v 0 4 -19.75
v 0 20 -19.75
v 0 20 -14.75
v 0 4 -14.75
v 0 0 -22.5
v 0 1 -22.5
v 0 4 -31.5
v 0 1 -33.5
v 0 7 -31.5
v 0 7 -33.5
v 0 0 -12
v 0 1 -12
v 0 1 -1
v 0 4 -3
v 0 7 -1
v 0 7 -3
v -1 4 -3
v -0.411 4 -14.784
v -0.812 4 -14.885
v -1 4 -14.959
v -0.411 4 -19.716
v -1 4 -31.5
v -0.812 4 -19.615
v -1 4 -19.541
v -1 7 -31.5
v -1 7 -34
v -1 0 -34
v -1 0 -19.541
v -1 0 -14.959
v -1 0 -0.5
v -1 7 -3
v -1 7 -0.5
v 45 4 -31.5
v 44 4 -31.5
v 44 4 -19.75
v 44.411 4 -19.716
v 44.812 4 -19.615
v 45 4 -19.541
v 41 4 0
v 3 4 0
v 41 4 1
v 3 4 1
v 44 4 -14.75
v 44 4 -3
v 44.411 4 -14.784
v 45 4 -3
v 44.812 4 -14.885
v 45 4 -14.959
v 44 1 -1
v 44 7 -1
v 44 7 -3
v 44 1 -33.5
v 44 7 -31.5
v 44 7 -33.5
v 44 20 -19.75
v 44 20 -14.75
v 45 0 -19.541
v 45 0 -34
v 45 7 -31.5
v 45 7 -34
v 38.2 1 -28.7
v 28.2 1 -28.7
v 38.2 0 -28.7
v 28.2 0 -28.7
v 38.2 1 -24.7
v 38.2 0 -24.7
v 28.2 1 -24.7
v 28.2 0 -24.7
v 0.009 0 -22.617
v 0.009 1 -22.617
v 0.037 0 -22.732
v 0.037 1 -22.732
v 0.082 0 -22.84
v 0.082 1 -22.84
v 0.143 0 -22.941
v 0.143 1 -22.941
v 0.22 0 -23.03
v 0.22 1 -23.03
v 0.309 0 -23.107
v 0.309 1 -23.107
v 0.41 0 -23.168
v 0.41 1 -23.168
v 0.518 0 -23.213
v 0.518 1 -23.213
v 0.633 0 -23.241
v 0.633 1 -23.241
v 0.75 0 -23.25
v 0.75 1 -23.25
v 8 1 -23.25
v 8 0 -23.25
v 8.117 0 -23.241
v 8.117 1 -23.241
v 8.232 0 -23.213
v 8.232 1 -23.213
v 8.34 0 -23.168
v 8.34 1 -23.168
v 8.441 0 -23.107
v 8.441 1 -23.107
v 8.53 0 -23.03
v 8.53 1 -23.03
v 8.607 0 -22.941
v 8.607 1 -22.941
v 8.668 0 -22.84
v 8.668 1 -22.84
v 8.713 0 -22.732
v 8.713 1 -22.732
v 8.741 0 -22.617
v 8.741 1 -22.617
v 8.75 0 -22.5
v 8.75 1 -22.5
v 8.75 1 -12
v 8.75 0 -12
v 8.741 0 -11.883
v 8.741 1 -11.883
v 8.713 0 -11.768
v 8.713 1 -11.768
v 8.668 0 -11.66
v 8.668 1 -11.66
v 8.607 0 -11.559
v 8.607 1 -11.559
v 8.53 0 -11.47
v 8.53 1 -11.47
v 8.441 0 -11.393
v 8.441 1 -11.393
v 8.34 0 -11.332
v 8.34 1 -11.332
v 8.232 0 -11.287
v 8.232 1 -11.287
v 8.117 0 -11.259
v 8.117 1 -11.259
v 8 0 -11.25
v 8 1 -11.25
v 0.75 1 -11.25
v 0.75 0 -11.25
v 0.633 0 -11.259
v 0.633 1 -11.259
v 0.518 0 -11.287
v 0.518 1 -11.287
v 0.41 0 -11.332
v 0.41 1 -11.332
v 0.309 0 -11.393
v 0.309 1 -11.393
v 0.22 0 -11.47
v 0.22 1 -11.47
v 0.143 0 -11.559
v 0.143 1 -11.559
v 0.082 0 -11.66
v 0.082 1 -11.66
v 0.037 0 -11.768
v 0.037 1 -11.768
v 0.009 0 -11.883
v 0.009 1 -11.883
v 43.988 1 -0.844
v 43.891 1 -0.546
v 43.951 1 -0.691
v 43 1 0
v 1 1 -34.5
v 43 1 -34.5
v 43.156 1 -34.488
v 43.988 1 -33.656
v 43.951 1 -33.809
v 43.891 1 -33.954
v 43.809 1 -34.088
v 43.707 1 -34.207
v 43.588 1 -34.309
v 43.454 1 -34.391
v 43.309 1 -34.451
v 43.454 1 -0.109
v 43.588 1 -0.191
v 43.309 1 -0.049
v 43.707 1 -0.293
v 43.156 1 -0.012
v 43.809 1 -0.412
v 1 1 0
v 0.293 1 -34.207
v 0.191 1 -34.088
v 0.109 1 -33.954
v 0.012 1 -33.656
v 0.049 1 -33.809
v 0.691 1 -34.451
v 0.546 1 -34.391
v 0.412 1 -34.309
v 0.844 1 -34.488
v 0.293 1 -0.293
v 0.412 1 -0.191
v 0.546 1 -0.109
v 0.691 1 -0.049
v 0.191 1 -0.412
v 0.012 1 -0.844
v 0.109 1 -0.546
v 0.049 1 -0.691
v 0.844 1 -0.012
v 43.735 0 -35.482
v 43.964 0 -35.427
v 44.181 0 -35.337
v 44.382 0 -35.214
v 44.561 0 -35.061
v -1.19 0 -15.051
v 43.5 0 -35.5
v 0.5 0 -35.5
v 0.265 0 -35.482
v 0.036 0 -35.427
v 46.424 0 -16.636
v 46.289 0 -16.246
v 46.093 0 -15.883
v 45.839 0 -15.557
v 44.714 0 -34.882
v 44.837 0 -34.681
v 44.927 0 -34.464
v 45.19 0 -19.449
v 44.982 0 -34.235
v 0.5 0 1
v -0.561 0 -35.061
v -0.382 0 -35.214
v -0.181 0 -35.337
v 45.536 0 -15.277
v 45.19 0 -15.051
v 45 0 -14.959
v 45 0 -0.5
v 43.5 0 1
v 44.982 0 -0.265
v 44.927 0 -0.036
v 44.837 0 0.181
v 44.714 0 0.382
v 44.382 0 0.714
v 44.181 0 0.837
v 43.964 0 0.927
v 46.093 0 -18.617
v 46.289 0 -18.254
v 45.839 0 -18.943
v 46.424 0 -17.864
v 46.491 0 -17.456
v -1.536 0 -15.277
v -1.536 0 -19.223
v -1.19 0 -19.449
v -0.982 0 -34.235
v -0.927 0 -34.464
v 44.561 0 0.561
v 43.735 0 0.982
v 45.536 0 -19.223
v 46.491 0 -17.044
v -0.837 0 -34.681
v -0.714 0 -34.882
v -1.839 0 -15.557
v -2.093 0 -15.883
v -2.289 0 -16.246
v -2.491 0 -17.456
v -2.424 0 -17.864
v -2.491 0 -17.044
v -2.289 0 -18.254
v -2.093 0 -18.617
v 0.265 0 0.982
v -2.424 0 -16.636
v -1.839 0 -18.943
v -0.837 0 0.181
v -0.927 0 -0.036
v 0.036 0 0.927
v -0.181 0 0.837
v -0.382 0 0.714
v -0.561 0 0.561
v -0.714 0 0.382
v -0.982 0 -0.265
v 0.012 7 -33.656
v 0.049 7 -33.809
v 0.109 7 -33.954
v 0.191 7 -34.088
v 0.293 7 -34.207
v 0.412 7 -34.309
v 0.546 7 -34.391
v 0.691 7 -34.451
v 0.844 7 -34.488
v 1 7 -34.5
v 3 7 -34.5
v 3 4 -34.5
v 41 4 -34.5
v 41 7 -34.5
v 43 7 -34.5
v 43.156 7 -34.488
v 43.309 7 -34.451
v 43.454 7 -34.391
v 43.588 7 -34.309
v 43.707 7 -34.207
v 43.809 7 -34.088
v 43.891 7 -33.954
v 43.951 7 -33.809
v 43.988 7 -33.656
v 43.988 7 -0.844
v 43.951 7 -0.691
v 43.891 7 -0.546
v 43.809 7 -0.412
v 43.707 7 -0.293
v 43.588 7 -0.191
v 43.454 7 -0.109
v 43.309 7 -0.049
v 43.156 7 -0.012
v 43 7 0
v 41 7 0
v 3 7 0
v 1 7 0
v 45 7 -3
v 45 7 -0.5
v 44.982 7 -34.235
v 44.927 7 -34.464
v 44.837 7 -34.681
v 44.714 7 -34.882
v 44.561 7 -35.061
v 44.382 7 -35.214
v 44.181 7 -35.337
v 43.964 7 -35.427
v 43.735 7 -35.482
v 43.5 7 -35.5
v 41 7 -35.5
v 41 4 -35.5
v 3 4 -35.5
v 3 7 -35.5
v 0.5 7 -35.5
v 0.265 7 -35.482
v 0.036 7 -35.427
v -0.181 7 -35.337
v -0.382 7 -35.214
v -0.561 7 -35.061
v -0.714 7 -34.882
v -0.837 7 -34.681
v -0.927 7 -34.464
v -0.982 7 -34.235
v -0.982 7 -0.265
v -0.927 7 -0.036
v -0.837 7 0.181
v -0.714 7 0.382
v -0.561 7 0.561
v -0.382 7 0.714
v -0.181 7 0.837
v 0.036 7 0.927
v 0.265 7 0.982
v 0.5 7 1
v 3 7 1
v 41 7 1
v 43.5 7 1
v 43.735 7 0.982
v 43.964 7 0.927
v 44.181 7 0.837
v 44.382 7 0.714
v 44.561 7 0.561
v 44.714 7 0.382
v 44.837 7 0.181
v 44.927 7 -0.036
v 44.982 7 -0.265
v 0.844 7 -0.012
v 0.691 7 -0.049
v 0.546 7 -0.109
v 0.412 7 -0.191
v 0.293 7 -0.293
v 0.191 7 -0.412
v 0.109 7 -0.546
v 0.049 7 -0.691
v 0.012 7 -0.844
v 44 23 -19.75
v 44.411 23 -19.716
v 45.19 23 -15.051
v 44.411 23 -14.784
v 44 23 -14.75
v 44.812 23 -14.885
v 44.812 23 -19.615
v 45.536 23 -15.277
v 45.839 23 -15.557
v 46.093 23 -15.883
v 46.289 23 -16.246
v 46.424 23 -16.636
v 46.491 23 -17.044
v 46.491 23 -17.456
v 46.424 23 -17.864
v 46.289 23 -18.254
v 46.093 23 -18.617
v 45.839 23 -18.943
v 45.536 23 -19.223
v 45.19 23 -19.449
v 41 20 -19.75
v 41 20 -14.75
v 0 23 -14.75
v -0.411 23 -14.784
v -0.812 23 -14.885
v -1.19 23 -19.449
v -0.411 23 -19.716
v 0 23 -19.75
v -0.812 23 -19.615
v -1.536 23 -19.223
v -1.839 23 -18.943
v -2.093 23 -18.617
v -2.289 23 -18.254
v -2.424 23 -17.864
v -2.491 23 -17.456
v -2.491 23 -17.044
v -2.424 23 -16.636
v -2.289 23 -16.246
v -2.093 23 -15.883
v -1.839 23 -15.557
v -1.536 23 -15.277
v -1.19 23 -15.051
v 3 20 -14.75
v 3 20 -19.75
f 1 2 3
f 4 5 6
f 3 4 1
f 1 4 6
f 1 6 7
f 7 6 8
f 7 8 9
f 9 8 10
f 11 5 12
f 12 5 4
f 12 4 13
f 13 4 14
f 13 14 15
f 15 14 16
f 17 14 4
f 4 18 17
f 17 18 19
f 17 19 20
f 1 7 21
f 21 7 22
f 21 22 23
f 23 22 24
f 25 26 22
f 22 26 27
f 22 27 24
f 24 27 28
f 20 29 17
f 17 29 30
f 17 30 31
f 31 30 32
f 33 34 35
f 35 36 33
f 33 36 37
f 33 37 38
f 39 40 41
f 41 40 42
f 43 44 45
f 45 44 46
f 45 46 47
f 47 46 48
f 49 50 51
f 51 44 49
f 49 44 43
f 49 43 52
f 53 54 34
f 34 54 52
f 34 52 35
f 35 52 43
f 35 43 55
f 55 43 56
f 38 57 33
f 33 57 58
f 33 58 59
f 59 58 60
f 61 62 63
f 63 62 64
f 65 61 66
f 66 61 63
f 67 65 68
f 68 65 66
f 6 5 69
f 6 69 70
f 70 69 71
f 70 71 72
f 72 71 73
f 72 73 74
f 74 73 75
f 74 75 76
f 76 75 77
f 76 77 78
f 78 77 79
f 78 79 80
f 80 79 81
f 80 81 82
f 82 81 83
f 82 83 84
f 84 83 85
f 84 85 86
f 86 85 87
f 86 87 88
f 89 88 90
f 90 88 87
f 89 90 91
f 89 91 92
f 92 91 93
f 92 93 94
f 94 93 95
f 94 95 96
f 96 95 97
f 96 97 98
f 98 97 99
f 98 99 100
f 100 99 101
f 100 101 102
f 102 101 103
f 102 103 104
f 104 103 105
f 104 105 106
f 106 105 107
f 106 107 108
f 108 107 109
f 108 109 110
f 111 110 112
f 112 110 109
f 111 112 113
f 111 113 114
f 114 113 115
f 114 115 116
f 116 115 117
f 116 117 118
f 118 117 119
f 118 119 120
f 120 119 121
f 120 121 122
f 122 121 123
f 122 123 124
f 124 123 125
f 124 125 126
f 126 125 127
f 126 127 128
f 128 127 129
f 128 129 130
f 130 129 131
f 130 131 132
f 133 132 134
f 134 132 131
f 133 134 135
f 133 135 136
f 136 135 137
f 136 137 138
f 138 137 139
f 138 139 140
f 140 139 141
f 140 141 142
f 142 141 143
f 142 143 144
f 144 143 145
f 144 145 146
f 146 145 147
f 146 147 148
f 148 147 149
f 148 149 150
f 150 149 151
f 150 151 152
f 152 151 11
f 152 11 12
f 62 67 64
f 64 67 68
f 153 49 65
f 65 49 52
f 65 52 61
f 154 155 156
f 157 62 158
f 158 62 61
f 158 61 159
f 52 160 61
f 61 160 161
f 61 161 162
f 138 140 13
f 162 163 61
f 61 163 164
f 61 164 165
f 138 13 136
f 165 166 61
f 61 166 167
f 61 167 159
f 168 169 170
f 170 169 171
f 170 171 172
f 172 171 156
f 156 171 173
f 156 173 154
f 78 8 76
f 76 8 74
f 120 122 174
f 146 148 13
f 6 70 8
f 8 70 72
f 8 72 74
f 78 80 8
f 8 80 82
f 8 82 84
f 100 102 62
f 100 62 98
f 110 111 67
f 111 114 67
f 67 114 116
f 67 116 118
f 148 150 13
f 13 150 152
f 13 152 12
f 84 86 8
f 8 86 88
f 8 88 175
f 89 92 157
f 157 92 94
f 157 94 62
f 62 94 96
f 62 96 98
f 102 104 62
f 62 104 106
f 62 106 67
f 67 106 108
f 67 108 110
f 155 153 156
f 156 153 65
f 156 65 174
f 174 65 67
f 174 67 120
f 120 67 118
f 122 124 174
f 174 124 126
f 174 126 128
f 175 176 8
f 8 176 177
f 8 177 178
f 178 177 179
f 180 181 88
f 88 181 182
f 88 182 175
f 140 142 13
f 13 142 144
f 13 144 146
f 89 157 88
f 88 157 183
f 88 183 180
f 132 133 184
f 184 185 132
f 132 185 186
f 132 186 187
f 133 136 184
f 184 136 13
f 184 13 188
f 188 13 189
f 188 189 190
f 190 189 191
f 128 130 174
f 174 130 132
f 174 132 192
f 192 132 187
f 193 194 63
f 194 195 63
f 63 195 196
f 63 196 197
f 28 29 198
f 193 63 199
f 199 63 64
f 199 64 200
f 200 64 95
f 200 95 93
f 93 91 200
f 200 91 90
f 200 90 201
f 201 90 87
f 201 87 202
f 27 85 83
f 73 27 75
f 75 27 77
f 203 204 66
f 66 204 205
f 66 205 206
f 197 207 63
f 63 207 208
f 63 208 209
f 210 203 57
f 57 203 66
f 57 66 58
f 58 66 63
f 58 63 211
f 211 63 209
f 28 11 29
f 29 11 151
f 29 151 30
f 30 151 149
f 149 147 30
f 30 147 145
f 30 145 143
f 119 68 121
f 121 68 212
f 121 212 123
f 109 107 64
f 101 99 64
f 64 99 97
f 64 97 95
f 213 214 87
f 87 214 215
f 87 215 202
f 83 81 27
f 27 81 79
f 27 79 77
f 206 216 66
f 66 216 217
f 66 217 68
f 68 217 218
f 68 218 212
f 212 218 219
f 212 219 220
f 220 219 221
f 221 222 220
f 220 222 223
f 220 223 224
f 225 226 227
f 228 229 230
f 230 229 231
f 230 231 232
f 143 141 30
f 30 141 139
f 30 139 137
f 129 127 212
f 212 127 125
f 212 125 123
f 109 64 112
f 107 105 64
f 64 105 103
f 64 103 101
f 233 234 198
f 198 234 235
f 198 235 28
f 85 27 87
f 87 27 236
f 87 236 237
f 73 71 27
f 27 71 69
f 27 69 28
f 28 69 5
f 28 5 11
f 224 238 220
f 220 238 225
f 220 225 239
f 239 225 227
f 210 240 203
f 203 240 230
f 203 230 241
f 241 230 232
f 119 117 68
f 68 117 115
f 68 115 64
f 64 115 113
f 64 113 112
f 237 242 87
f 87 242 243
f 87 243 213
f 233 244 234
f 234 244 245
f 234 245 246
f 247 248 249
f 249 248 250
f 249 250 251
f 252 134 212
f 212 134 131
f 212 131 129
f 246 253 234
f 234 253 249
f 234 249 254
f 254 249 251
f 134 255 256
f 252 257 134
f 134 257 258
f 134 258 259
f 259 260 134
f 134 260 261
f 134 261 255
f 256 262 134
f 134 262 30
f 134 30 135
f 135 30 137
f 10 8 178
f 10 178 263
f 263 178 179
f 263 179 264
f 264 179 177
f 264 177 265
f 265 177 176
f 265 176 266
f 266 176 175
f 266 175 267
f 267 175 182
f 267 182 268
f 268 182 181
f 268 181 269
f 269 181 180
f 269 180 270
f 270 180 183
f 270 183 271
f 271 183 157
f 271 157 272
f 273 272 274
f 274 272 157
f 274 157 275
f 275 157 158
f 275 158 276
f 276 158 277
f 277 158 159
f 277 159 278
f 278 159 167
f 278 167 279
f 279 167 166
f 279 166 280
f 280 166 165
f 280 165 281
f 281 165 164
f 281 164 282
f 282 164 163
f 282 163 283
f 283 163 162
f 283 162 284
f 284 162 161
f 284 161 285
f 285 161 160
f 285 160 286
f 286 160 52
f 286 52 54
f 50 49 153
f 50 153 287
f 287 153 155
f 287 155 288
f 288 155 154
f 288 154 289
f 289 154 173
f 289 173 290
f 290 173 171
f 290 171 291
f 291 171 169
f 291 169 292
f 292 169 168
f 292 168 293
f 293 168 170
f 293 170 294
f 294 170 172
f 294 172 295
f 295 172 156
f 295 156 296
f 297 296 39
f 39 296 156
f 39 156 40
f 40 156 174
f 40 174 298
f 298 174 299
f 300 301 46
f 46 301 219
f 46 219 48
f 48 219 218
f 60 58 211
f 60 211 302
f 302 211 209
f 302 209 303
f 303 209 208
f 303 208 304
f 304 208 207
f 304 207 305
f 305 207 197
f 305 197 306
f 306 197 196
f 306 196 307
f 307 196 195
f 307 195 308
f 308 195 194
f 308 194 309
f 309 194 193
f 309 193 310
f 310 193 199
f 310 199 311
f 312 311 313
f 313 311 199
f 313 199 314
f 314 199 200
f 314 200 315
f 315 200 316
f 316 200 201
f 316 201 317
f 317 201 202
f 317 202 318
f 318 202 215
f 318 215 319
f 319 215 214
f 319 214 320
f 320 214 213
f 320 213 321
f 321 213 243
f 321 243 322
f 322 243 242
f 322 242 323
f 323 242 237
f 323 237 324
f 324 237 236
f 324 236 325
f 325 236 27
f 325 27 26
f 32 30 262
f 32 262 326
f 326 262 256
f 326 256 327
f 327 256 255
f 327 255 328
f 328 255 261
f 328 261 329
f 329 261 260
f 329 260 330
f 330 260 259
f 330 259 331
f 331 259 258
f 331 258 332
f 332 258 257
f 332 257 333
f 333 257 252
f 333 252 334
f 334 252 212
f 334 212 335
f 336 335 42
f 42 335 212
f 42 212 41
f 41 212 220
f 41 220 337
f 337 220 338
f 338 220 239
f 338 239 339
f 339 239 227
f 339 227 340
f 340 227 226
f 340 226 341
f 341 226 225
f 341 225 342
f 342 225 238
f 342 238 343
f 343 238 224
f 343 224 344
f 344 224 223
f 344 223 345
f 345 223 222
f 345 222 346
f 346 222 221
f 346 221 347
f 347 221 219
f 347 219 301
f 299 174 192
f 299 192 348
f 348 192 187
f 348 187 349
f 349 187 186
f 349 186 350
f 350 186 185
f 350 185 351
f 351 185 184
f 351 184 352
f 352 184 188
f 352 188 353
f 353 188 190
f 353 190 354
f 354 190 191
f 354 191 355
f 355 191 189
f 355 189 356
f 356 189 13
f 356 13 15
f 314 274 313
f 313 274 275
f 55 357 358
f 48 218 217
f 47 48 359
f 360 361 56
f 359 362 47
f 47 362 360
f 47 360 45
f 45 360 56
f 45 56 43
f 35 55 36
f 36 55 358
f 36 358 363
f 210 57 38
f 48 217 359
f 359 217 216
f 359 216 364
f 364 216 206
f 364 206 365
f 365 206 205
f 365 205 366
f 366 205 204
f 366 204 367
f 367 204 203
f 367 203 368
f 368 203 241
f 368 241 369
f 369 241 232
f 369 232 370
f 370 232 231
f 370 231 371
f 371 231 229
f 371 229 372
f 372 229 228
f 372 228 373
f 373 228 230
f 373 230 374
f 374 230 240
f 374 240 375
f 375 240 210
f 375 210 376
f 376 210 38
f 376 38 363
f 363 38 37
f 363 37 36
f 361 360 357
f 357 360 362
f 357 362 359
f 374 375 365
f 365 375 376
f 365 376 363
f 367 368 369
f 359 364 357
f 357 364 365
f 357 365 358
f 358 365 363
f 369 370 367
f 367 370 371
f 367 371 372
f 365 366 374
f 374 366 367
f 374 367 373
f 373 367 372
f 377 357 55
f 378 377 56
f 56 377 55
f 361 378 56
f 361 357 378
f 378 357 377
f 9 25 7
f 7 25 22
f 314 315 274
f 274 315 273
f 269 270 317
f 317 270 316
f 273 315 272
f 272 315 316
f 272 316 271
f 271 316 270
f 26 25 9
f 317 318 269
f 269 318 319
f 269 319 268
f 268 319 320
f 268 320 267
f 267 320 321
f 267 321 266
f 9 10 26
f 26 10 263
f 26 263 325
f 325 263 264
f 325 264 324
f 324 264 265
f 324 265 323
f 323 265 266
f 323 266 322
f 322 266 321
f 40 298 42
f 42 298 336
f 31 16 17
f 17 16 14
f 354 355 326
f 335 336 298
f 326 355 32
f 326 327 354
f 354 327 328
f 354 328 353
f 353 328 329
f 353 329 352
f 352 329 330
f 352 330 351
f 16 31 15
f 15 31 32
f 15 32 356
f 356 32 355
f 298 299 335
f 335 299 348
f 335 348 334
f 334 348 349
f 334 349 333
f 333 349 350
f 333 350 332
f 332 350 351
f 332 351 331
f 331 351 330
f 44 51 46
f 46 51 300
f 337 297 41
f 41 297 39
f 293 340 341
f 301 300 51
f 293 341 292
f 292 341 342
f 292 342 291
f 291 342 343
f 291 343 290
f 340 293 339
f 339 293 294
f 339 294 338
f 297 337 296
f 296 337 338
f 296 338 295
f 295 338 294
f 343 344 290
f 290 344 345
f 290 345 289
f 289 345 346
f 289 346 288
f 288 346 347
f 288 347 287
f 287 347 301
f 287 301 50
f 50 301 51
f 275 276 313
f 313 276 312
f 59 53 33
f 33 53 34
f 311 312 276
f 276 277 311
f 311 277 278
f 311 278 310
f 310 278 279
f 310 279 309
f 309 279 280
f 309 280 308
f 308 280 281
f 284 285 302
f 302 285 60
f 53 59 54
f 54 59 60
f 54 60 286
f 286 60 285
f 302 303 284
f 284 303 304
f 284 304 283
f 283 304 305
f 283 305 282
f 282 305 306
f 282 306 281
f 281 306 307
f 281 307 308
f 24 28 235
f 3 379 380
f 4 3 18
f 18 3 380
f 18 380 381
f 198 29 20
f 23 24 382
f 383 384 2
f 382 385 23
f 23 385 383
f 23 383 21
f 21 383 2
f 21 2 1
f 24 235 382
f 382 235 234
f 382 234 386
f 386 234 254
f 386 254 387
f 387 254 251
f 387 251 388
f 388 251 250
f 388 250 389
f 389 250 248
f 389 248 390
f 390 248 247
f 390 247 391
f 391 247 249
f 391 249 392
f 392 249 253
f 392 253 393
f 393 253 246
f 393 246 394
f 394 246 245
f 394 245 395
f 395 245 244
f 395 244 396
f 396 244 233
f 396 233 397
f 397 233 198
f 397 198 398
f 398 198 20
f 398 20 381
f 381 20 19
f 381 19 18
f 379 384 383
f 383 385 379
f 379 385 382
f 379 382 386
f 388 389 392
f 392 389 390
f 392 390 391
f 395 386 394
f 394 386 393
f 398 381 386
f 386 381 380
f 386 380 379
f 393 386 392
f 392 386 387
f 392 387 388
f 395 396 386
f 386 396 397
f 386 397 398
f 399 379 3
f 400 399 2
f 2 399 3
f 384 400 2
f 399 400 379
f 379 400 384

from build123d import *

# Parameters (mm, degrees)
SKETCH1_W           = 10
SKETCH1_H           = 4
BOSS_EXTRUDE1_DEPTH = 1
SKETCH1_3_W         = 38
SKETCH1_3_H         = 1
BOSS_EXTRUDE2_DEPTH = 4
BOSS_EXTRUDE3_DEPTH = 23
SKETCH2_W           = 5
SKETCH2_H           = 3
BOSS_EXTRUDE4_DEPTH = 3
CUT_EXTRUDE1_DEPTH  = 56.873182297
BOSS_EXTRUDE5_DEPTH = 7
BOSS_EXTRUDE8_DEPTH = 23
SKETCH6_W           = 5
SKETCH6_H           = 3
BOSS_EXTRUDE9_DEPTH = 3
CUT_EXTRUDE3_DEPTH  = 56.873182297


with BuildPart() as part:
    # Sketch1 → Boss-Extrude1 (new body)
    with BuildSketch(Plane(origin=(0, 0, 0), x_dir=(1, 0, 0), z_dir=(0, 1, 0))):
        with BuildLine():
            Line((8.75, 22.5), (8.75, 12))
            ThreePointArc((8.75, 12), (8.530330086, 11.469669914), (8, 11.25))
            Line((8, 11.25), (0.75, 11.25))
            ThreePointArc((0.75, 11.25), (0.219669914, 11.469669914), (0, 12))
            Line((0, 12), (0, 1))
            ThreePointArc((0, 1), (0.292893219, 0.292893219), (1, 0))
            Line((1, 0), (43, 0))
            ThreePointArc((43, 0), (43.707106781, 0.292893219), (44, 1))
            Line((44, 1), (44, 33.5))
            ThreePointArc((44, 33.5), (43.707106781, 34.207106781), (43, 34.5))
            Line((43, 34.5), (1, 34.5))
            ThreePointArc((1, 34.5), (0.292893219, 34.207106781), (0, 33.5))
            Line((0, 33.5), (0, 22.5))
            ThreePointArc((0, 22.5), (0.219669914, 23.030330086), (0.75, 23.25))
            Line((0.75, 23.25), (8, 23.25))
            ThreePointArc((8, 23.25), (8.530330086, 23.030330086), (8.75, 22.5))
        make_face()
        with Locations((33.2, 26.7)):
            Rectangle(SKETCH1_W, SKETCH1_H, mode=Mode.SUBTRACT)
    extrude(amount=BOSS_EXTRUDE1_DEPTH)

    # Sketch1<3> → Boss-Extrude2 (add)
    # profile 1 of 12: a face of its own
    with BuildSketch(Plane(origin=(0, 0, 0), x_dir=(1, 0, 0), z_dir=(0, 1, 0))):
        with BuildLine():
            ThreePointArc((43.5, 35.5), (44.560660172, 35.060660172), (45, 34))
            Line((45, 34), (45, 0.5))
            ThreePointArc((45, 0.5), (44.560660172, -0.560660172), (43.5, -1))
            Line((43.5, -1), (0.5, -1))
            ThreePointArc((0.5, -1), (-0.560660172, -0.560660172), (-1, 0.5))
            Line((-1, 0.5), (-1, 34))
            ThreePointArc((-1, 34), (-0.560660172, 35.060660172), (0.5, 35.5))
            Line((0.5, 35.5), (43.5, 35.5))
        make_face()
        with BuildLine():
            ThreePointArc((1, 34.5), (0.292893219, 34.207106781), (0, 33.5))
            Line((0, 33.5), (0, 24.75))
            Line((0, 24.75), (0, 22.5))
            Line((0, 22.5), (0, 12))
            Line((0, 12), (0, 9.75))
            Line((0, 9.75), (0, 1))
            ThreePointArc((0, 1), (0.292893219, 0.292893219), (1, 0))
            Line((1, 0), (43, 0))
            ThreePointArc((43, 0), (43.707106781, 0.292893219), (44, 1))
            Line((44, 1), (44, 33.5))
            ThreePointArc((44, 33.5), (43.707106781, 34.207106781), (43, 34.5))
            Line((43, 34.5), (1, 34.5))
        make_face(mode=Mode.SUBTRACT)
    # profile 2 of 12: a face of its own
    with BuildSketch(Plane(origin=(0, 0, 0), x_dir=(1, 0, 0), z_dir=(0, 1, 0))):
        with BuildLine():
            Line((3, 0), (1, 0))
            ThreePointArc((1, 0), (0.292893219, 0.292893219), (0, 1))
            Line((0, 1), (0, 3))
            Line((0, 3), (-1, 3))
            Line((-1, 3), (-1, 0.5))
            ThreePointArc((-1, 0.5), (-0.560660172, -0.560660172), (0.5, -1))
            Line((0.5, -1), (3, -1))
            Line((3, -1), (3, 0))
        make_face()
    # profile 3 of 12: a face of its own
    with BuildSketch(Plane(origin=(0, 0, 0), x_dir=(1, 0, 0), z_dir=(0, 1, 0))):
        with Locations((22, -0.5)):
            Rectangle(SKETCH1_3_W, SKETCH1_3_H)
    # profile 4 of 12: a face of its own
    with BuildSketch(Plane(origin=(0, 0, 0), x_dir=(1, 0, 0), z_dir=(0, 1, 0))):
        with BuildLine():
            Line((43, 0), (41, 0))
            Line((41, 0), (41, -1))
            Line((41, -1), (43.5, -1))
            ThreePointArc((43.5, -1), (44.560660172, -0.560660172), (45, 0.5))
            Line((45, 0.5), (45, 3))
            Line((45, 3), (44, 3))
            Line((44, 3), (44, 1))
            ThreePointArc((44, 1), (43.707106781, 0.292893219), (43, 0))
        make_face()
    # profile 5 of 12: a face of its own
    with BuildSketch(Plane(origin=(0, 0, 0), x_dir=(1, 0, 0), z_dir=(0, 1, 0))):
        with BuildLine():
            Line((44, 14.75), (44, 3))
            Line((44, 3), (45, 3))
            Line((45, 3), (45, 14.958712153))
            ThreePointArc((45, 14.958712153), (44.510774109, 14.802734218), (44, 14.75))
        make_face()
    # profile 6 of 12: a face of its own
    with BuildSketch(Plane(origin=(0, 0, 0), x_dir=(1, 0, 0), z_dir=(0, 1, 0))):
        with BuildLine():
            Line((44, 31.5), (44, 19.75))
            ThreePointArc((44, 19.75), (44.510774109, 19.697265782), (45, 19.541287847))
            Line((45, 19.541287847), (45, 31.5))
            Line((45, 31.5), (44, 31.5))
        make_face()
    # profile 7 of 12: a face of its own
    with BuildSketch(Plane(origin=(0, 0, 0), x_dir=(1, 0, 0), z_dir=(0, 1, 0))):
        with BuildLine():
            Line((44, 19.75), (44, 14.75))
            ThreePointArc((44, 14.75), (44.510774109, 14.802734218), (45, 14.958712153))
            Line((45, 14.958712153), (45, 19.541287847))
            ThreePointArc((45, 19.541287847), (44.510774109, 19.697265782), (44, 19.75))
        make_face()
    # profile 8 of 12: a face of its own
    with BuildSketch(Plane(origin=(0, 0, 0), x_dir=(1, 0, 0), z_dir=(0, 1, 0))):
        with BuildLine():
            Line((44, 33.5), (44, 31.5))
            Line((44, 31.5), (45, 31.5))
            Line((45, 31.5), (45, 34))
            ThreePointArc((45, 34), (44.560660172, 35.060660172), (43.5, 35.5))
            Line((43.5, 35.5), (41, 35.5))
            Line((41, 35.5), (41, 34.5))
            Line((41, 34.5), (43, 34.5))
            ThreePointArc((43, 34.5), (43.707106781, 34.207106781), (44, 33.5))
        make_face()
    # profile 9 of 12: a face of its own
    with BuildSketch(Plane(origin=(0, 0, 0), x_dir=(1, 0, 0), z_dir=(0, 1, 0))):
        with Locations((22, 35)):
            Rectangle(SKETCH1_3_W, SKETCH1_3_H)
    # profile 10 of 12: a face of its own
    with BuildSketch(Plane(origin=(0, 0, 0), x_dir=(1, 0, 0), z_dir=(0, 1, 0))):
        with BuildLine():
            Line((-1, 34), (-1, 31.5))
            Line((-1, 31.5), (0, 31.5))
            Line((0, 31.5), (0, 33.5))
            ThreePointArc((0, 33.5), (0.292893219, 34.207106781), (1, 34.5))
            Line((1, 34.5), (3, 34.5))
            Line((3, 34.5), (3, 35.5))
            Line((3, 35.5), (0.5, 35.5))
            ThreePointArc((0.5, 35.5), (-0.560660172, 35.060660172), (-1, 34))
        make_face()
    # profile 11 of 12: a face of its own
    with BuildSketch(Plane(origin=(0, 0, 0), x_dir=(1, 0, 0), z_dir=(0, 1, 0))):
        with BuildLine():
            Line((-1, 3), (0, 3))
            Line((0, 3), (0, 9.75))
            Line((0, 9.75), (0, 12))
            Line((0, 12), (0, 14.75))
            ThreePointArc((0, 14.75), (-0.510774109, 14.802734218), (-1, 14.958712153))
            Line((-1, 14.958712153), (-1, 3))
        make_face()
    # profile 12 of 12: a face of its own
    with BuildSketch(Plane(origin=(0, 0, 0), x_dir=(1, 0, 0), z_dir=(0, 1, 0))):
        with BuildLine():
            Line((-1, 31.5), (-1, 19.541287847))
            ThreePointArc((-1, 19.541287847), (-0.510774109, 19.697265782), (0, 19.75))
            Line((0, 19.75), (0, 22.5))
            Line((0, 22.5), (0, 24.75))
            Line((0, 24.75), (0, 31.5))
            Line((0, 31.5), (-1, 31.5))
        make_face()
    extrude(amount=BOSS_EXTRUDE2_DEPTH)

    # Sketch1<4> → Boss-Extrude3 (add)
    with BuildSketch(Plane(origin=(0, 0, 0), x_dir=(1, 0, 0), z_dir=(0, 1, 0))):
        with BuildLine():
            Line((45, 19.541287847), (45, 14.958712153))
            ThreePointArc((45, 14.958712153), (46.5, 17.25), (45, 19.541287847))
        make_face()
        with BuildLine():
            Line((44, 19.75), (44, 14.75))
            ThreePointArc((44, 14.75), (44.510774109, 14.802734218), (45, 14.958712153))
            Line((45, 14.958712153), (45, 19.541287847))
            ThreePointArc((45, 19.541287847), (44.510774109, 19.697265782), (44, 19.75))
        make_face()
    extrude(amount=BOSS_EXTRUDE3_DEPTH)

    # Sketch2 → Boss-Extrude4 (add)
    with BuildSketch(Plane.ZY.offset(-44)):
        with Locations((-17.25, 21.5)):
            Rectangle(SKETCH2_W, SKETCH2_H)
    extrude(amount=BOSS_EXTRUDE4_DEPTH)

    # Sketch3 → Cut-Extrude1 (cut, through all)
    with BuildSketch(Plane.XY.offset(-14.75)):
        Polygon((41, 20), (44, 23), (41, 23), align=None)
    extrude(amount=-CUT_EXTRUDE1_DEPTH, mode=Mode.SUBTRACT)

    # Sketch1<6> → Boss-Extrude5 (add)
    with BuildSketch(Plane(origin=(0, 0, 0), x_dir=(1, 0, 0), z_dir=(0, 1, 0))):
        with BuildLine():
            Line((-1, 34), (-1, 31.5))
            Line((-1, 31.5), (0, 31.5))
            Line((0, 31.5), (0, 33.5))
            ThreePointArc((0, 33.5), (0.292893219, 34.207106781), (1, 34.5))
            Line((1, 34.5), (3, 34.5))
            Line((3, 34.5), (3, 35.5))
            Line((3, 35.5), (0.5, 35.5))
            ThreePointArc((0.5, 35.5), (-0.560660172, 35.060660172), (-1, 34))
        make_face()
        with BuildLine():
            Line((3, 0), (1, 0))
            ThreePointArc((1, 0), (0.292893219, 0.292893219), (0, 1))
            Line((0, 1), (0, 3))
            Line((0, 3), (-1, 3))
            Line((-1, 3), (-1, 0.5))
            ThreePointArc((-1, 0.5), (-0.560660172, -0.560660172), (0.5, -1))
            Line((0.5, -1), (3, -1))
            Line((3, -1), (3, 0))
        make_face()
        with BuildLine():
            Line((43, 0), (41, 0))
            Line((41, 0), (41, -1))
            Line((41, -1), (43.5, -1))
            ThreePointArc((43.5, -1), (44.560660172, -0.560660172), (45, 0.5))
            Line((45, 0.5), (45, 3))
            Line((45, 3), (44, 3))
            Line((44, 3), (44, 1))
            ThreePointArc((44, 1), (43.707106781, 0.292893219), (43, 0))
        make_face()
        with BuildLine():
            Line((44, 33.5), (44, 31.5))
            Line((44, 31.5), (45, 31.5))
            Line((45, 31.5), (45, 34))
            ThreePointArc((45, 34), (44.560660172, 35.060660172), (43.5, 35.5))
            Line((43.5, 35.5), (41, 35.5))
            Line((41, 35.5), (41, 34.5))
            Line((41, 34.5), (43, 34.5))
            ThreePointArc((43, 34.5), (43.707106781, 34.207106781), (44, 33.5))
        make_face()
    extrude(amount=BOSS_EXTRUDE5_DEPTH)

    # Sketch1<9> → Boss-Extrude8 (add)
    with BuildSketch(Plane(origin=(0, 0, 0), x_dir=(1, 0, 0), z_dir=(0, 1, 0))):
        with BuildLine():
            ThreePointArc((-1, 19.541287847), (-2.5, 17.25), (-1, 14.958712153))
            Line((-1, 14.958712153), (-1, 19.541287847))
        make_face()
        with BuildLine():
            Line((-1, 19.541287847), (-1, 14.958712153))
            ThreePointArc((-1, 14.958712153), (-0.510774109, 14.802734218), (0, 14.75))
            Line((0, 14.75), (0, 19.75))
            ThreePointArc((0, 19.75), (-0.510774109, 19.697265782), (-1, 19.541287847))
        make_face()
    extrude(amount=BOSS_EXTRUDE8_DEPTH)

    # Sketch6 → Boss-Extrude9 (add)
    with BuildSketch(Plane(origin=(0, 0, 0), x_dir=(0, 0, -1), z_dir=(1, 0, 0))):
        with Locations((17.25, 21.5)):
            Rectangle(SKETCH6_W, SKETCH6_H)
    extrude(amount=BOSS_EXTRUDE9_DEPTH)

    # Sketch7 → Cut-Extrude3 (cut, through all)
    with BuildSketch(Plane.XY.offset(-14.75)):
        Polygon((3, 23), (3, 20), (0, 23), align=None)
    extrude(amount=-CUT_EXTRUDE3_DEPTH, mode=Mode.SUBTRACT)


solid = part.part
